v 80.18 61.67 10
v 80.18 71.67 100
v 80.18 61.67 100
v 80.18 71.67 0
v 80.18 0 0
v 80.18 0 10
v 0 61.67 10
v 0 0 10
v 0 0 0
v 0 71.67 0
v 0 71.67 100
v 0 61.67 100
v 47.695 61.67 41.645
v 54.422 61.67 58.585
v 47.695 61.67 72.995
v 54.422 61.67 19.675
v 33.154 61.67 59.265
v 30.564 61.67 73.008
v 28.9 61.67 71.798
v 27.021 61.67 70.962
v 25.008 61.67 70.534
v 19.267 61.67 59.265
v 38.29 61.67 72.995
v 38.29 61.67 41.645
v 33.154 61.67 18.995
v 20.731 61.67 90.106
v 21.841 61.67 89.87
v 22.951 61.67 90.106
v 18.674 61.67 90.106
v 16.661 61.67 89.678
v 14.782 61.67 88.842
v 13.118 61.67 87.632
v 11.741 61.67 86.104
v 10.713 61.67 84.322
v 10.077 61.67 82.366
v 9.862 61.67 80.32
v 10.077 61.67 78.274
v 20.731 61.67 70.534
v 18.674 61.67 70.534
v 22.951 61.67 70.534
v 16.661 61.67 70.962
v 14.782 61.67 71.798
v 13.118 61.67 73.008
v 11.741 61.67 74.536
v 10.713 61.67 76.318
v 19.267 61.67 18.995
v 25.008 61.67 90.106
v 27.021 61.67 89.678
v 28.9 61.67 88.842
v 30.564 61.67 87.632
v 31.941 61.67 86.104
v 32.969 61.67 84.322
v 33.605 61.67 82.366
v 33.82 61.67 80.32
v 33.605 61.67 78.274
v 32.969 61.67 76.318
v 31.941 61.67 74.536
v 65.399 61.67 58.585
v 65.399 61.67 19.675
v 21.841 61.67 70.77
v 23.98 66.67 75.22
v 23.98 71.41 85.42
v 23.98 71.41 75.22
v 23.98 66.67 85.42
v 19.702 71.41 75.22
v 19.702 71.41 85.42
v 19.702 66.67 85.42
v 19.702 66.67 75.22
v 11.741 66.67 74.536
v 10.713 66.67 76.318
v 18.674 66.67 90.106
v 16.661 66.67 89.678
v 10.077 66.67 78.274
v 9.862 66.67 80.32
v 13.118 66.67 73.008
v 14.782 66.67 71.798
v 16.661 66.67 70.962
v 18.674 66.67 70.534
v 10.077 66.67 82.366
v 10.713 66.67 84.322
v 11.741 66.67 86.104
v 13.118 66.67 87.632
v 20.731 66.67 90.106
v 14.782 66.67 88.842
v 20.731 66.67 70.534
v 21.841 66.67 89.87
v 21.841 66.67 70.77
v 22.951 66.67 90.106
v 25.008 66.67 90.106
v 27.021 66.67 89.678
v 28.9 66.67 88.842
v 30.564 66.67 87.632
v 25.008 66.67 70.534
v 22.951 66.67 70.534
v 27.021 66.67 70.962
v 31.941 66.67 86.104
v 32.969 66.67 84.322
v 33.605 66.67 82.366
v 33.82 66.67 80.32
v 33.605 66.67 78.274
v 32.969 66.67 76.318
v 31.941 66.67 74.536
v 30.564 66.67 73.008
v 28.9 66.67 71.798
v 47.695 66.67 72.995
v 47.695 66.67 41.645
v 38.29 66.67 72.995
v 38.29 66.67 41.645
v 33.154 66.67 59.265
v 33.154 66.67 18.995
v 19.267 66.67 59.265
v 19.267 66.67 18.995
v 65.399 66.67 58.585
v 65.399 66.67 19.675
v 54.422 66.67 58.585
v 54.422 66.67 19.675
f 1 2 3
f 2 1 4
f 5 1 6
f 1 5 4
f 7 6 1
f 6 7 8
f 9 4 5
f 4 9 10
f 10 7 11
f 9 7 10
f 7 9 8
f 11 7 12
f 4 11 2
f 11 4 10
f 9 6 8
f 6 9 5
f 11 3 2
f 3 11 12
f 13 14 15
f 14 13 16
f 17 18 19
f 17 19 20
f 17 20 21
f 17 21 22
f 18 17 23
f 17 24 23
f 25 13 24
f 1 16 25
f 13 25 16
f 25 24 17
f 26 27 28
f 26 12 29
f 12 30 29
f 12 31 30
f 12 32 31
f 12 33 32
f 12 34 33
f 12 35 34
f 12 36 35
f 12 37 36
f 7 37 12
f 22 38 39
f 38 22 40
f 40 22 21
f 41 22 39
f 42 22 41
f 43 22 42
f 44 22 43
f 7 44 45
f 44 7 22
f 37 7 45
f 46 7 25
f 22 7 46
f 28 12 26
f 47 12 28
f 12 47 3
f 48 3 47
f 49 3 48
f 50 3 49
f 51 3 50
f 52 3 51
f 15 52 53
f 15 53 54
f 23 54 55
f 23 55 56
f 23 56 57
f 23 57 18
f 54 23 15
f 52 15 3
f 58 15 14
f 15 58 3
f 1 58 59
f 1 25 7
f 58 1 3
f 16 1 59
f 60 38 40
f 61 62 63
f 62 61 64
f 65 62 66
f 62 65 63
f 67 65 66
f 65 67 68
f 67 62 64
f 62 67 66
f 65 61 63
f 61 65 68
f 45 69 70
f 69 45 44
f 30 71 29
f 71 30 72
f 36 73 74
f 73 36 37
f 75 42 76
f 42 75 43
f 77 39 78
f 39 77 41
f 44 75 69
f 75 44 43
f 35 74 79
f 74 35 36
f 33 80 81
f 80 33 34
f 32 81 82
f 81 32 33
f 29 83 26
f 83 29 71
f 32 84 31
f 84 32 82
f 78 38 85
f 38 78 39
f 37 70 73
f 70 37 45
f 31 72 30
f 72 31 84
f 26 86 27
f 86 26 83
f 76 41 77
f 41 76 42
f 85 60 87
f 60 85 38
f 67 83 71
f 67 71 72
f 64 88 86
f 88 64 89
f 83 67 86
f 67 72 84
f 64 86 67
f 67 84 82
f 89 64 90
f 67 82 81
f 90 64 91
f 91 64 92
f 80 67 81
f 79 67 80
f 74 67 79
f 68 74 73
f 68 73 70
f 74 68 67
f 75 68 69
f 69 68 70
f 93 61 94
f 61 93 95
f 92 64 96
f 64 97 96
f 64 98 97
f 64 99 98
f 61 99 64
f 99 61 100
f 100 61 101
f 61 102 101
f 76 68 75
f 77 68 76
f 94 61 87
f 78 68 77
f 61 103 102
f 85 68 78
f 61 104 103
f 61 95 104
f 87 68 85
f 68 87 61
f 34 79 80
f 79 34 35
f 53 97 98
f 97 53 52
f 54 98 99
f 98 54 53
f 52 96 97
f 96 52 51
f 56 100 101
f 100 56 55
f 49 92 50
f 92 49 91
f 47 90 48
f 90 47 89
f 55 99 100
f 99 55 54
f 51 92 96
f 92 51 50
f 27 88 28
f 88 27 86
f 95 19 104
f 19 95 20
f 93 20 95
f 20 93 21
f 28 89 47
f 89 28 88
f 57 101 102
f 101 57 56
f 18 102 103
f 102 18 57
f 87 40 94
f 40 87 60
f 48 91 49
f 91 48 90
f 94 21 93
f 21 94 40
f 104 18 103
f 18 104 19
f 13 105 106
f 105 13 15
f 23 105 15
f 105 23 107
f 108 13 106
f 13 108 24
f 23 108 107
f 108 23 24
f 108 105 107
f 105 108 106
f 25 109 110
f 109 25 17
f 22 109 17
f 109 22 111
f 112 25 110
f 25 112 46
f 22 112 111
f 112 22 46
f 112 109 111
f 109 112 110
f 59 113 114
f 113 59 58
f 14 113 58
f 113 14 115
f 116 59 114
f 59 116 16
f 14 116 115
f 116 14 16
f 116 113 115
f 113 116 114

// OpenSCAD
/* doodle-meta {"version":1,"parameters":{"width":{"label":"Overall width","description":"Changes the body width","unit":"mm","feature":"body_width"},"depth":{"label":"Overall depth","description":"Changes the body depth","unit":"mm","feature":"body_depth"},"height":{"label":"Overall height","description":"Changes the body height","unit":"mm","feature":"body_height"},"panel_thickness":{"label":"Panel thickness","description":"Thickness of the upright panel","unit":"mm","feature":"panel_thickness"},"base_thickness":{"label":"Base thickness","description":"Thickness of the horizontal base","unit":"mm","feature":"base_thickness"}},"features":{"body_width":{"kind":"dimension","axis":"x","label":"Overall width"},"body_depth":{"kind":"dimension","axis":"y","label":"Overall depth"},"body_height":{"kind":"dimension","axis":"z","label":"Overall height"},"panel_thickness":{"kind":"dimension","axis":"y","label":"Panel thickness"},"base_thickness":{"kind":"dimension","axis":"z","label":"Base thickness"}}} */

// Top-level parameters (user-editable)
width = 80.18;
depth = 71.67;
height = 100.0;
panel_thickness = 10.0;
base_thickness = 10.0;

// Derived constants (not user-editable)
eps = 0.1;

// Cutout definitions in view-normalized coordinates (u, v) and sizes (su, sv)
// u maps to +X, v maps to -Z (v=0 is top, v=1 is bottom)
// X = u * width
// Z = (1 - v) * height

// Cutout 1: Slot in upper-left (contour_8)
c1_u = 0.2724; c1_v = 0.1968; c1_su = 0.2988; c1_sv = 0.1968;
// Cutout 2: Rectangle in center (contour_6)
c2_u = 0.5362; c2_v = 0.4268; c2_su = 0.1173; c2_sv = 0.3135;
// Cutout 3: Rectangle in lower-left (contour_4)
c3_u = 0.3269; c3_v = 0.6087; c3_su = 0.1732; c3_sv = 0.4027;
// Cutout 4: Polygon/Rectangle in lower-right (contour_2)
c4_u = 0.7472; c4_v = 0.6087; c4_su = 0.1369; c4_sv = 0.3891;

// Helper module for rectangular cutouts
module rect_cutout(cx, cz, w, h) {
    // cx, cz are center coordinates in XZ plane
    // w, h are width (X) and height (Z)
    // Cut along Y axis (through the panel)
    // Panel Y range: [depth - panel_thickness, depth]
    // Cutter Y range: [depth - panel_thickness - eps, depth + eps]
    translate([cx, depth - panel_thickness - eps, cz])
        cube([w, panel_thickness + 2*eps, h], center=true);
}

// Helper module for slot cutouts (stadium shape)
module slot_cutout(cx, cz, w, h) {
    // Stadium shape: rectangle with semicircular ends
    // w is total width, h is total height (diameter of ends)
    // Cut along Y axis
    r = h / 2;
    straight_len = w - h;
    
    translate([cx, depth - panel_thickness - eps, cz])
        rotate([90, 0, 0])
            union() {
                // Central rectangle
                cube([straight_len, panel_thickness + 2*eps, h], center=true);
                // Left cap
                translate([-straight_len/2, 0, 0])
                    cylinder(h=panel_thickness + 2*eps, r=r, center=true);
                // Right cap
                translate([straight_len/2, 0, 0])
                    cylinder(h=panel_thickness + 2*eps, r=r, center=true);
            }
}

// Main design
difference() {
    // Positive Body: L-shape
    union() {
        // Base: Extends from Y=0 to Y=depth, Z=0 to Z=base_thickness, X=0 to X=width
        cube([width, depth, base_thickness]);
        
        // Upright Panel: Extends from Y=depth-panel_thickness to Y=depth, Z=0 to Z=height, X=0 to X=width
        // Note: The panel sits on the back edge of the base.
        // Base is Y: 0..depth. Panel is Y: depth-panel_thickness..depth.
        // They overlap in Z: 0..base_thickness.
        translate([0, depth - panel_thickness, 0])
            cube([width, panel_thickness, height]);
    }
    
    // Subtractive Cutouts
    // Convert view coords to CAD coords
    // X = u * width
    // Z = (1 - v) * height
    
    // Cutout 1: Slot
    c1_x = c1_u * width;
    c1_z = (1 - c1_v) * height;
    c1_w = c1_su * width;
    c1_h = c1_sv * height;
    slot_cutout(c1_x, c1_z, c1_w, c1_h);
    
    // Cutout 2: Rectangle
    c2_x = c2_u * width;
    c2_z = (1 - c2_v) * height;
    c2_w = c2_su * width;
    c2_h = c2_sv * height;
    rect_cutout(c2_x, c2_z, c2_w, c2_h);
    
    // Cutout 3: Rectangle
    c3_x = c3_u * width;
    c3_z = (1 - c3_v) * height;
    c3_w = c3_su * width;
    c3_h = c3_sv * height;
    rect_cutout(c3_x, c3_z, c3_w, c3_h);
    
    // Cutout 4: Rectangle (treating low-confidence polygon as rectangle per intent)
    c4_x = c4_u * width;
    c4_z = (1 - c4_v) * height;
    c4_w = c4_su * width;
    c4_h = c4_sv * height;
    rect_cutout(c4_x, c4_z, c4_w, c4_h);
}
